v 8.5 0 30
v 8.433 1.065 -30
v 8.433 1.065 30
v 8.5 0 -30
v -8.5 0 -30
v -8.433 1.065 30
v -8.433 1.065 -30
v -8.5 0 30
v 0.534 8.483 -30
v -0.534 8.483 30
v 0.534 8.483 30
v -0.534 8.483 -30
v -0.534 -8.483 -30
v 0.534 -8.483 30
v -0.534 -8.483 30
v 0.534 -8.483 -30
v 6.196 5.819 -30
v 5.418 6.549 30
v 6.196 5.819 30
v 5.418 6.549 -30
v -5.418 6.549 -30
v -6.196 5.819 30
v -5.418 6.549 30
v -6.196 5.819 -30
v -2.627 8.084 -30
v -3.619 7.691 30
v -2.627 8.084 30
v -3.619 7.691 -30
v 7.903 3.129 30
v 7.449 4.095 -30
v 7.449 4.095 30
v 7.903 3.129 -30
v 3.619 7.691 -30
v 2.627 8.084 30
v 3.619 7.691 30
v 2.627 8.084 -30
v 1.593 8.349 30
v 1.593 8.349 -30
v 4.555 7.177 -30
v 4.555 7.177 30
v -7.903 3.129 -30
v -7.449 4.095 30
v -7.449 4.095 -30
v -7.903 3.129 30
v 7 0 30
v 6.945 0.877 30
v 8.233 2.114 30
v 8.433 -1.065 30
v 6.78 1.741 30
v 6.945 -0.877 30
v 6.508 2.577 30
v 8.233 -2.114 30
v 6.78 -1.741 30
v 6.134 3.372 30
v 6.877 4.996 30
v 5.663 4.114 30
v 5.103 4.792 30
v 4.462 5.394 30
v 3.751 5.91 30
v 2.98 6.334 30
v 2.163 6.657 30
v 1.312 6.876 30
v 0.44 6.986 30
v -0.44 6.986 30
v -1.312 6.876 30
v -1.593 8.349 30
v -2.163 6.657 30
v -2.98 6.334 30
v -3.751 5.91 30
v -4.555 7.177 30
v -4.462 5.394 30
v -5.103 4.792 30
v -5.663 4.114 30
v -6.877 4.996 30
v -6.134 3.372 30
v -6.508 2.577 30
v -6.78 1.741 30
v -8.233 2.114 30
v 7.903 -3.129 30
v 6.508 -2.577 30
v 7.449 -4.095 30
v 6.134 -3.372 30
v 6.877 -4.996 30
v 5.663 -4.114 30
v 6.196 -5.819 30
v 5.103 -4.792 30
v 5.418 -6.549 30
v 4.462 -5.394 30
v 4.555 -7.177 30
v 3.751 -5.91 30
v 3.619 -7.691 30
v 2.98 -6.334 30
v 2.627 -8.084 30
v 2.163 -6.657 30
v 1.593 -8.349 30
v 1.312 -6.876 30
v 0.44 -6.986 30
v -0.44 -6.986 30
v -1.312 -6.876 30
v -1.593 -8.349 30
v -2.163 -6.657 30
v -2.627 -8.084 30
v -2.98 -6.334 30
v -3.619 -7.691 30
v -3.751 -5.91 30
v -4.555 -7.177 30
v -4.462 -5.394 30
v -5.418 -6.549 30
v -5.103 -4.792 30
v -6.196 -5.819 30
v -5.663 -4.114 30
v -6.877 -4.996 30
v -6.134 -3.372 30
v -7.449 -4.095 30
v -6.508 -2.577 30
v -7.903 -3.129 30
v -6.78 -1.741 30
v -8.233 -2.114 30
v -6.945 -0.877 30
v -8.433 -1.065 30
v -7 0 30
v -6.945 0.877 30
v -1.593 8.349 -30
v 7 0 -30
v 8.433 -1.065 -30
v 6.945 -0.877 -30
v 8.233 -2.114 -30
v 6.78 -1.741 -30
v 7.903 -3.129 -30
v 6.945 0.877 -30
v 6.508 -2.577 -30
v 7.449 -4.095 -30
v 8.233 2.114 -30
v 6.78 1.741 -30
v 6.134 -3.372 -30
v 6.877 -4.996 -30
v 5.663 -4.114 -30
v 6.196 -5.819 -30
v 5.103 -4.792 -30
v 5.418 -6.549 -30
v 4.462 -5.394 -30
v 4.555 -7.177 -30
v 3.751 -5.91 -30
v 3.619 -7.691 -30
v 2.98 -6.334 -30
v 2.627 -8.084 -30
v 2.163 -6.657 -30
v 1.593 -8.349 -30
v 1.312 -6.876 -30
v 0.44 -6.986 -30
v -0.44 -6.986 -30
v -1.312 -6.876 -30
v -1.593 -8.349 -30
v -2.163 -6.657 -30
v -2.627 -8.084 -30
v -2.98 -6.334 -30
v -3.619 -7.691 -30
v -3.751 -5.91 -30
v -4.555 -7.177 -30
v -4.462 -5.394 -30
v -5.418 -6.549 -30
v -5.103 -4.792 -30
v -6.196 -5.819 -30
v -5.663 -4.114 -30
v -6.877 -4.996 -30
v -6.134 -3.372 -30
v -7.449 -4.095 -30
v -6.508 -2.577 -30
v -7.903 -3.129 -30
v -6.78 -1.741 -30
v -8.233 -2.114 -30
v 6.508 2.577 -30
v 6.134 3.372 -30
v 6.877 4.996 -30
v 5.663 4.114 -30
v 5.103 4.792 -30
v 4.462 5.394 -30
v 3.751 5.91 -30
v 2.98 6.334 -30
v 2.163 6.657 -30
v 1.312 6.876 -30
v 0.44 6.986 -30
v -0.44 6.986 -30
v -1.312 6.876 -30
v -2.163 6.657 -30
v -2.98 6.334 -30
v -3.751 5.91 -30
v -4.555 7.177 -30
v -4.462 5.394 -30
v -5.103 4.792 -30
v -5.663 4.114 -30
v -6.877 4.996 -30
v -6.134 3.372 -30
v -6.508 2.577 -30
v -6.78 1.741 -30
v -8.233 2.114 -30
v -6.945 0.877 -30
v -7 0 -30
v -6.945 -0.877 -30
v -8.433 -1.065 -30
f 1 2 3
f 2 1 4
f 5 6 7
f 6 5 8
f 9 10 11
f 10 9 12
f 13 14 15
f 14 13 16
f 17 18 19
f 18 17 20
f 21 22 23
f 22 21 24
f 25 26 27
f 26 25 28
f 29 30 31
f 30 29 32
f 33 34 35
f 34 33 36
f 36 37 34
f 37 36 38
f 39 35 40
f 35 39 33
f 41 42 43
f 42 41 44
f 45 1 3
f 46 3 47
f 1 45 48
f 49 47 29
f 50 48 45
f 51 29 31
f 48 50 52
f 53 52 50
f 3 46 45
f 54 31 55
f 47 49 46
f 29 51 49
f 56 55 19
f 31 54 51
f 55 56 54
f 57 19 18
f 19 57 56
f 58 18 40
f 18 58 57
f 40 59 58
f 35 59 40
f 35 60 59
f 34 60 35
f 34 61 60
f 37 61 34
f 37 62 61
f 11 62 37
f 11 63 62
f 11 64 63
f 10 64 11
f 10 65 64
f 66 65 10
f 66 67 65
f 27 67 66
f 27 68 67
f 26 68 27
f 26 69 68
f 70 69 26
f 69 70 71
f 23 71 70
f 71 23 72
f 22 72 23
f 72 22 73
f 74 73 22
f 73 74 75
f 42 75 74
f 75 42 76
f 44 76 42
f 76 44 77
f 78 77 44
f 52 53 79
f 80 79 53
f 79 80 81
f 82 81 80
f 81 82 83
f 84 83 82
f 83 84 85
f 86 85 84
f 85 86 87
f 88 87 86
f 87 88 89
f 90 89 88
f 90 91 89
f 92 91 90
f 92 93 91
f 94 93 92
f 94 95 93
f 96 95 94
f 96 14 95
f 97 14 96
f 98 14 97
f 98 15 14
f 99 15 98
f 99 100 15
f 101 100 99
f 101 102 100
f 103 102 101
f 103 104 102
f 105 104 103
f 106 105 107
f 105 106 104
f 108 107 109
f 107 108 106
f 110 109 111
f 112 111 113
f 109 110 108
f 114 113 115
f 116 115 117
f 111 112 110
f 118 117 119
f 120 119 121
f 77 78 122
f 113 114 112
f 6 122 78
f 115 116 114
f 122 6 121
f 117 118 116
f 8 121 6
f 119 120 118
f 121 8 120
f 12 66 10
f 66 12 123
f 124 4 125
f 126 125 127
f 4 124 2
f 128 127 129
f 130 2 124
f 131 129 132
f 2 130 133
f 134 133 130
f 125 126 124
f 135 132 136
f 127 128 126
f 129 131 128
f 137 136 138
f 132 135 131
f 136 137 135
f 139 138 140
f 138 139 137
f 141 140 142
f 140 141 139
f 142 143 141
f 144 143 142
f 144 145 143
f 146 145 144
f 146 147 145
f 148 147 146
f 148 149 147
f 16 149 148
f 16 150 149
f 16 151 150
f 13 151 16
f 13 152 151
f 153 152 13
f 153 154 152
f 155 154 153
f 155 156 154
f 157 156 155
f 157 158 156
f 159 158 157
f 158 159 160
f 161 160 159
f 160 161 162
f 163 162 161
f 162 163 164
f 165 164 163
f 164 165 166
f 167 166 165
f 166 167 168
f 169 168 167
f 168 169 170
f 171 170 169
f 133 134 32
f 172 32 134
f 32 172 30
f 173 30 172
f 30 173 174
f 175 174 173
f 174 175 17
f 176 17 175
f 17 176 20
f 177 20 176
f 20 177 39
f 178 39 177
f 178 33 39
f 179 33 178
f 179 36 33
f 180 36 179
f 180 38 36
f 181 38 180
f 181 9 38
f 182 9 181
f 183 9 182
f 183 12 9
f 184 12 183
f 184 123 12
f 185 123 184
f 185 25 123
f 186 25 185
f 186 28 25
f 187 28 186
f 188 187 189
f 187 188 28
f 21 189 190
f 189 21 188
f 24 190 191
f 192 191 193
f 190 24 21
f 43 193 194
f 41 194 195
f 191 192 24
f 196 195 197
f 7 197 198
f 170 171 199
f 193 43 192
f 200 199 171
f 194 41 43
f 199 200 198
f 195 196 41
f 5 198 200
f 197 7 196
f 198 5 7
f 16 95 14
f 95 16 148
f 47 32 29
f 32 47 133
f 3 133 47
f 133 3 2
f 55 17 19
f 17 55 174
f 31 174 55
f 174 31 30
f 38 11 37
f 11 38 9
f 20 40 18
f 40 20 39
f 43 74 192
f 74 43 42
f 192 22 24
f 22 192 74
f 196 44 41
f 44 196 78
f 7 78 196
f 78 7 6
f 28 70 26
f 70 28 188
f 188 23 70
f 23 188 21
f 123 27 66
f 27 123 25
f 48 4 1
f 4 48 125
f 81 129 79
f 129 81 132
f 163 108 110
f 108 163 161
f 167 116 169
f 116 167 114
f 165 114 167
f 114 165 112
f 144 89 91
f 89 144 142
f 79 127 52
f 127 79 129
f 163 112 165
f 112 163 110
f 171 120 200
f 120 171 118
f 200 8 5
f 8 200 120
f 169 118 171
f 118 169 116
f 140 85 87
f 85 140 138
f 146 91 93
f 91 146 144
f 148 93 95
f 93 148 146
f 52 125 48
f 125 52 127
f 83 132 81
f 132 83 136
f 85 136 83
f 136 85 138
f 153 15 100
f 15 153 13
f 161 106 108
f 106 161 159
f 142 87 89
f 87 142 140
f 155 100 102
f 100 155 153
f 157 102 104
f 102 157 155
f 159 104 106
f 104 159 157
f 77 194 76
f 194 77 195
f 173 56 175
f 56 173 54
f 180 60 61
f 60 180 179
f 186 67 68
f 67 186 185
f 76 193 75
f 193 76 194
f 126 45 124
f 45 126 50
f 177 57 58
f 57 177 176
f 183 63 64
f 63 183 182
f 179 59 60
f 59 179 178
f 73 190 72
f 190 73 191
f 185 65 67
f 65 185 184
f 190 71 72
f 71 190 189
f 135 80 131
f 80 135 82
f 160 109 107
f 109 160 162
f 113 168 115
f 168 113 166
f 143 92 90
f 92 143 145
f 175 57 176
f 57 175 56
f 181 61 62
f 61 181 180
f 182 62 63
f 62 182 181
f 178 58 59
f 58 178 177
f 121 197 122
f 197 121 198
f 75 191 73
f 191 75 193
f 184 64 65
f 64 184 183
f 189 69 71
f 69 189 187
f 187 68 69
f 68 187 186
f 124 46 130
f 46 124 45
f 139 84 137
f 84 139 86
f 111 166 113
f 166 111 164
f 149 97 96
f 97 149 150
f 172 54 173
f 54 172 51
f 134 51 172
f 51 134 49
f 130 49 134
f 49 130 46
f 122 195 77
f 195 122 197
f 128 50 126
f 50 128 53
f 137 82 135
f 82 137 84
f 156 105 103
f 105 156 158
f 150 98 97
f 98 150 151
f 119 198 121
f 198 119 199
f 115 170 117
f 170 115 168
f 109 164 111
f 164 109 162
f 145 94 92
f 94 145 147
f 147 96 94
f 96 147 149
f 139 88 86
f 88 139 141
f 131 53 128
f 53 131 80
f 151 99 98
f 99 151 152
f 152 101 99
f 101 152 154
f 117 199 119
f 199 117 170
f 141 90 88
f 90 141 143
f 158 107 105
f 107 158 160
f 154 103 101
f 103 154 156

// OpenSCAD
$fn = 50;


difference() {
	union() {
		translate(v = [0, 0, -30.0000000000]) {
			cylinder(h = 60, r = 8.5000000000);
		}
	}
	union() {
		translate(v = [0, 0, -100.0000000000]) {
			cylinder(h = 200, r = 7);
		}
	}
}
